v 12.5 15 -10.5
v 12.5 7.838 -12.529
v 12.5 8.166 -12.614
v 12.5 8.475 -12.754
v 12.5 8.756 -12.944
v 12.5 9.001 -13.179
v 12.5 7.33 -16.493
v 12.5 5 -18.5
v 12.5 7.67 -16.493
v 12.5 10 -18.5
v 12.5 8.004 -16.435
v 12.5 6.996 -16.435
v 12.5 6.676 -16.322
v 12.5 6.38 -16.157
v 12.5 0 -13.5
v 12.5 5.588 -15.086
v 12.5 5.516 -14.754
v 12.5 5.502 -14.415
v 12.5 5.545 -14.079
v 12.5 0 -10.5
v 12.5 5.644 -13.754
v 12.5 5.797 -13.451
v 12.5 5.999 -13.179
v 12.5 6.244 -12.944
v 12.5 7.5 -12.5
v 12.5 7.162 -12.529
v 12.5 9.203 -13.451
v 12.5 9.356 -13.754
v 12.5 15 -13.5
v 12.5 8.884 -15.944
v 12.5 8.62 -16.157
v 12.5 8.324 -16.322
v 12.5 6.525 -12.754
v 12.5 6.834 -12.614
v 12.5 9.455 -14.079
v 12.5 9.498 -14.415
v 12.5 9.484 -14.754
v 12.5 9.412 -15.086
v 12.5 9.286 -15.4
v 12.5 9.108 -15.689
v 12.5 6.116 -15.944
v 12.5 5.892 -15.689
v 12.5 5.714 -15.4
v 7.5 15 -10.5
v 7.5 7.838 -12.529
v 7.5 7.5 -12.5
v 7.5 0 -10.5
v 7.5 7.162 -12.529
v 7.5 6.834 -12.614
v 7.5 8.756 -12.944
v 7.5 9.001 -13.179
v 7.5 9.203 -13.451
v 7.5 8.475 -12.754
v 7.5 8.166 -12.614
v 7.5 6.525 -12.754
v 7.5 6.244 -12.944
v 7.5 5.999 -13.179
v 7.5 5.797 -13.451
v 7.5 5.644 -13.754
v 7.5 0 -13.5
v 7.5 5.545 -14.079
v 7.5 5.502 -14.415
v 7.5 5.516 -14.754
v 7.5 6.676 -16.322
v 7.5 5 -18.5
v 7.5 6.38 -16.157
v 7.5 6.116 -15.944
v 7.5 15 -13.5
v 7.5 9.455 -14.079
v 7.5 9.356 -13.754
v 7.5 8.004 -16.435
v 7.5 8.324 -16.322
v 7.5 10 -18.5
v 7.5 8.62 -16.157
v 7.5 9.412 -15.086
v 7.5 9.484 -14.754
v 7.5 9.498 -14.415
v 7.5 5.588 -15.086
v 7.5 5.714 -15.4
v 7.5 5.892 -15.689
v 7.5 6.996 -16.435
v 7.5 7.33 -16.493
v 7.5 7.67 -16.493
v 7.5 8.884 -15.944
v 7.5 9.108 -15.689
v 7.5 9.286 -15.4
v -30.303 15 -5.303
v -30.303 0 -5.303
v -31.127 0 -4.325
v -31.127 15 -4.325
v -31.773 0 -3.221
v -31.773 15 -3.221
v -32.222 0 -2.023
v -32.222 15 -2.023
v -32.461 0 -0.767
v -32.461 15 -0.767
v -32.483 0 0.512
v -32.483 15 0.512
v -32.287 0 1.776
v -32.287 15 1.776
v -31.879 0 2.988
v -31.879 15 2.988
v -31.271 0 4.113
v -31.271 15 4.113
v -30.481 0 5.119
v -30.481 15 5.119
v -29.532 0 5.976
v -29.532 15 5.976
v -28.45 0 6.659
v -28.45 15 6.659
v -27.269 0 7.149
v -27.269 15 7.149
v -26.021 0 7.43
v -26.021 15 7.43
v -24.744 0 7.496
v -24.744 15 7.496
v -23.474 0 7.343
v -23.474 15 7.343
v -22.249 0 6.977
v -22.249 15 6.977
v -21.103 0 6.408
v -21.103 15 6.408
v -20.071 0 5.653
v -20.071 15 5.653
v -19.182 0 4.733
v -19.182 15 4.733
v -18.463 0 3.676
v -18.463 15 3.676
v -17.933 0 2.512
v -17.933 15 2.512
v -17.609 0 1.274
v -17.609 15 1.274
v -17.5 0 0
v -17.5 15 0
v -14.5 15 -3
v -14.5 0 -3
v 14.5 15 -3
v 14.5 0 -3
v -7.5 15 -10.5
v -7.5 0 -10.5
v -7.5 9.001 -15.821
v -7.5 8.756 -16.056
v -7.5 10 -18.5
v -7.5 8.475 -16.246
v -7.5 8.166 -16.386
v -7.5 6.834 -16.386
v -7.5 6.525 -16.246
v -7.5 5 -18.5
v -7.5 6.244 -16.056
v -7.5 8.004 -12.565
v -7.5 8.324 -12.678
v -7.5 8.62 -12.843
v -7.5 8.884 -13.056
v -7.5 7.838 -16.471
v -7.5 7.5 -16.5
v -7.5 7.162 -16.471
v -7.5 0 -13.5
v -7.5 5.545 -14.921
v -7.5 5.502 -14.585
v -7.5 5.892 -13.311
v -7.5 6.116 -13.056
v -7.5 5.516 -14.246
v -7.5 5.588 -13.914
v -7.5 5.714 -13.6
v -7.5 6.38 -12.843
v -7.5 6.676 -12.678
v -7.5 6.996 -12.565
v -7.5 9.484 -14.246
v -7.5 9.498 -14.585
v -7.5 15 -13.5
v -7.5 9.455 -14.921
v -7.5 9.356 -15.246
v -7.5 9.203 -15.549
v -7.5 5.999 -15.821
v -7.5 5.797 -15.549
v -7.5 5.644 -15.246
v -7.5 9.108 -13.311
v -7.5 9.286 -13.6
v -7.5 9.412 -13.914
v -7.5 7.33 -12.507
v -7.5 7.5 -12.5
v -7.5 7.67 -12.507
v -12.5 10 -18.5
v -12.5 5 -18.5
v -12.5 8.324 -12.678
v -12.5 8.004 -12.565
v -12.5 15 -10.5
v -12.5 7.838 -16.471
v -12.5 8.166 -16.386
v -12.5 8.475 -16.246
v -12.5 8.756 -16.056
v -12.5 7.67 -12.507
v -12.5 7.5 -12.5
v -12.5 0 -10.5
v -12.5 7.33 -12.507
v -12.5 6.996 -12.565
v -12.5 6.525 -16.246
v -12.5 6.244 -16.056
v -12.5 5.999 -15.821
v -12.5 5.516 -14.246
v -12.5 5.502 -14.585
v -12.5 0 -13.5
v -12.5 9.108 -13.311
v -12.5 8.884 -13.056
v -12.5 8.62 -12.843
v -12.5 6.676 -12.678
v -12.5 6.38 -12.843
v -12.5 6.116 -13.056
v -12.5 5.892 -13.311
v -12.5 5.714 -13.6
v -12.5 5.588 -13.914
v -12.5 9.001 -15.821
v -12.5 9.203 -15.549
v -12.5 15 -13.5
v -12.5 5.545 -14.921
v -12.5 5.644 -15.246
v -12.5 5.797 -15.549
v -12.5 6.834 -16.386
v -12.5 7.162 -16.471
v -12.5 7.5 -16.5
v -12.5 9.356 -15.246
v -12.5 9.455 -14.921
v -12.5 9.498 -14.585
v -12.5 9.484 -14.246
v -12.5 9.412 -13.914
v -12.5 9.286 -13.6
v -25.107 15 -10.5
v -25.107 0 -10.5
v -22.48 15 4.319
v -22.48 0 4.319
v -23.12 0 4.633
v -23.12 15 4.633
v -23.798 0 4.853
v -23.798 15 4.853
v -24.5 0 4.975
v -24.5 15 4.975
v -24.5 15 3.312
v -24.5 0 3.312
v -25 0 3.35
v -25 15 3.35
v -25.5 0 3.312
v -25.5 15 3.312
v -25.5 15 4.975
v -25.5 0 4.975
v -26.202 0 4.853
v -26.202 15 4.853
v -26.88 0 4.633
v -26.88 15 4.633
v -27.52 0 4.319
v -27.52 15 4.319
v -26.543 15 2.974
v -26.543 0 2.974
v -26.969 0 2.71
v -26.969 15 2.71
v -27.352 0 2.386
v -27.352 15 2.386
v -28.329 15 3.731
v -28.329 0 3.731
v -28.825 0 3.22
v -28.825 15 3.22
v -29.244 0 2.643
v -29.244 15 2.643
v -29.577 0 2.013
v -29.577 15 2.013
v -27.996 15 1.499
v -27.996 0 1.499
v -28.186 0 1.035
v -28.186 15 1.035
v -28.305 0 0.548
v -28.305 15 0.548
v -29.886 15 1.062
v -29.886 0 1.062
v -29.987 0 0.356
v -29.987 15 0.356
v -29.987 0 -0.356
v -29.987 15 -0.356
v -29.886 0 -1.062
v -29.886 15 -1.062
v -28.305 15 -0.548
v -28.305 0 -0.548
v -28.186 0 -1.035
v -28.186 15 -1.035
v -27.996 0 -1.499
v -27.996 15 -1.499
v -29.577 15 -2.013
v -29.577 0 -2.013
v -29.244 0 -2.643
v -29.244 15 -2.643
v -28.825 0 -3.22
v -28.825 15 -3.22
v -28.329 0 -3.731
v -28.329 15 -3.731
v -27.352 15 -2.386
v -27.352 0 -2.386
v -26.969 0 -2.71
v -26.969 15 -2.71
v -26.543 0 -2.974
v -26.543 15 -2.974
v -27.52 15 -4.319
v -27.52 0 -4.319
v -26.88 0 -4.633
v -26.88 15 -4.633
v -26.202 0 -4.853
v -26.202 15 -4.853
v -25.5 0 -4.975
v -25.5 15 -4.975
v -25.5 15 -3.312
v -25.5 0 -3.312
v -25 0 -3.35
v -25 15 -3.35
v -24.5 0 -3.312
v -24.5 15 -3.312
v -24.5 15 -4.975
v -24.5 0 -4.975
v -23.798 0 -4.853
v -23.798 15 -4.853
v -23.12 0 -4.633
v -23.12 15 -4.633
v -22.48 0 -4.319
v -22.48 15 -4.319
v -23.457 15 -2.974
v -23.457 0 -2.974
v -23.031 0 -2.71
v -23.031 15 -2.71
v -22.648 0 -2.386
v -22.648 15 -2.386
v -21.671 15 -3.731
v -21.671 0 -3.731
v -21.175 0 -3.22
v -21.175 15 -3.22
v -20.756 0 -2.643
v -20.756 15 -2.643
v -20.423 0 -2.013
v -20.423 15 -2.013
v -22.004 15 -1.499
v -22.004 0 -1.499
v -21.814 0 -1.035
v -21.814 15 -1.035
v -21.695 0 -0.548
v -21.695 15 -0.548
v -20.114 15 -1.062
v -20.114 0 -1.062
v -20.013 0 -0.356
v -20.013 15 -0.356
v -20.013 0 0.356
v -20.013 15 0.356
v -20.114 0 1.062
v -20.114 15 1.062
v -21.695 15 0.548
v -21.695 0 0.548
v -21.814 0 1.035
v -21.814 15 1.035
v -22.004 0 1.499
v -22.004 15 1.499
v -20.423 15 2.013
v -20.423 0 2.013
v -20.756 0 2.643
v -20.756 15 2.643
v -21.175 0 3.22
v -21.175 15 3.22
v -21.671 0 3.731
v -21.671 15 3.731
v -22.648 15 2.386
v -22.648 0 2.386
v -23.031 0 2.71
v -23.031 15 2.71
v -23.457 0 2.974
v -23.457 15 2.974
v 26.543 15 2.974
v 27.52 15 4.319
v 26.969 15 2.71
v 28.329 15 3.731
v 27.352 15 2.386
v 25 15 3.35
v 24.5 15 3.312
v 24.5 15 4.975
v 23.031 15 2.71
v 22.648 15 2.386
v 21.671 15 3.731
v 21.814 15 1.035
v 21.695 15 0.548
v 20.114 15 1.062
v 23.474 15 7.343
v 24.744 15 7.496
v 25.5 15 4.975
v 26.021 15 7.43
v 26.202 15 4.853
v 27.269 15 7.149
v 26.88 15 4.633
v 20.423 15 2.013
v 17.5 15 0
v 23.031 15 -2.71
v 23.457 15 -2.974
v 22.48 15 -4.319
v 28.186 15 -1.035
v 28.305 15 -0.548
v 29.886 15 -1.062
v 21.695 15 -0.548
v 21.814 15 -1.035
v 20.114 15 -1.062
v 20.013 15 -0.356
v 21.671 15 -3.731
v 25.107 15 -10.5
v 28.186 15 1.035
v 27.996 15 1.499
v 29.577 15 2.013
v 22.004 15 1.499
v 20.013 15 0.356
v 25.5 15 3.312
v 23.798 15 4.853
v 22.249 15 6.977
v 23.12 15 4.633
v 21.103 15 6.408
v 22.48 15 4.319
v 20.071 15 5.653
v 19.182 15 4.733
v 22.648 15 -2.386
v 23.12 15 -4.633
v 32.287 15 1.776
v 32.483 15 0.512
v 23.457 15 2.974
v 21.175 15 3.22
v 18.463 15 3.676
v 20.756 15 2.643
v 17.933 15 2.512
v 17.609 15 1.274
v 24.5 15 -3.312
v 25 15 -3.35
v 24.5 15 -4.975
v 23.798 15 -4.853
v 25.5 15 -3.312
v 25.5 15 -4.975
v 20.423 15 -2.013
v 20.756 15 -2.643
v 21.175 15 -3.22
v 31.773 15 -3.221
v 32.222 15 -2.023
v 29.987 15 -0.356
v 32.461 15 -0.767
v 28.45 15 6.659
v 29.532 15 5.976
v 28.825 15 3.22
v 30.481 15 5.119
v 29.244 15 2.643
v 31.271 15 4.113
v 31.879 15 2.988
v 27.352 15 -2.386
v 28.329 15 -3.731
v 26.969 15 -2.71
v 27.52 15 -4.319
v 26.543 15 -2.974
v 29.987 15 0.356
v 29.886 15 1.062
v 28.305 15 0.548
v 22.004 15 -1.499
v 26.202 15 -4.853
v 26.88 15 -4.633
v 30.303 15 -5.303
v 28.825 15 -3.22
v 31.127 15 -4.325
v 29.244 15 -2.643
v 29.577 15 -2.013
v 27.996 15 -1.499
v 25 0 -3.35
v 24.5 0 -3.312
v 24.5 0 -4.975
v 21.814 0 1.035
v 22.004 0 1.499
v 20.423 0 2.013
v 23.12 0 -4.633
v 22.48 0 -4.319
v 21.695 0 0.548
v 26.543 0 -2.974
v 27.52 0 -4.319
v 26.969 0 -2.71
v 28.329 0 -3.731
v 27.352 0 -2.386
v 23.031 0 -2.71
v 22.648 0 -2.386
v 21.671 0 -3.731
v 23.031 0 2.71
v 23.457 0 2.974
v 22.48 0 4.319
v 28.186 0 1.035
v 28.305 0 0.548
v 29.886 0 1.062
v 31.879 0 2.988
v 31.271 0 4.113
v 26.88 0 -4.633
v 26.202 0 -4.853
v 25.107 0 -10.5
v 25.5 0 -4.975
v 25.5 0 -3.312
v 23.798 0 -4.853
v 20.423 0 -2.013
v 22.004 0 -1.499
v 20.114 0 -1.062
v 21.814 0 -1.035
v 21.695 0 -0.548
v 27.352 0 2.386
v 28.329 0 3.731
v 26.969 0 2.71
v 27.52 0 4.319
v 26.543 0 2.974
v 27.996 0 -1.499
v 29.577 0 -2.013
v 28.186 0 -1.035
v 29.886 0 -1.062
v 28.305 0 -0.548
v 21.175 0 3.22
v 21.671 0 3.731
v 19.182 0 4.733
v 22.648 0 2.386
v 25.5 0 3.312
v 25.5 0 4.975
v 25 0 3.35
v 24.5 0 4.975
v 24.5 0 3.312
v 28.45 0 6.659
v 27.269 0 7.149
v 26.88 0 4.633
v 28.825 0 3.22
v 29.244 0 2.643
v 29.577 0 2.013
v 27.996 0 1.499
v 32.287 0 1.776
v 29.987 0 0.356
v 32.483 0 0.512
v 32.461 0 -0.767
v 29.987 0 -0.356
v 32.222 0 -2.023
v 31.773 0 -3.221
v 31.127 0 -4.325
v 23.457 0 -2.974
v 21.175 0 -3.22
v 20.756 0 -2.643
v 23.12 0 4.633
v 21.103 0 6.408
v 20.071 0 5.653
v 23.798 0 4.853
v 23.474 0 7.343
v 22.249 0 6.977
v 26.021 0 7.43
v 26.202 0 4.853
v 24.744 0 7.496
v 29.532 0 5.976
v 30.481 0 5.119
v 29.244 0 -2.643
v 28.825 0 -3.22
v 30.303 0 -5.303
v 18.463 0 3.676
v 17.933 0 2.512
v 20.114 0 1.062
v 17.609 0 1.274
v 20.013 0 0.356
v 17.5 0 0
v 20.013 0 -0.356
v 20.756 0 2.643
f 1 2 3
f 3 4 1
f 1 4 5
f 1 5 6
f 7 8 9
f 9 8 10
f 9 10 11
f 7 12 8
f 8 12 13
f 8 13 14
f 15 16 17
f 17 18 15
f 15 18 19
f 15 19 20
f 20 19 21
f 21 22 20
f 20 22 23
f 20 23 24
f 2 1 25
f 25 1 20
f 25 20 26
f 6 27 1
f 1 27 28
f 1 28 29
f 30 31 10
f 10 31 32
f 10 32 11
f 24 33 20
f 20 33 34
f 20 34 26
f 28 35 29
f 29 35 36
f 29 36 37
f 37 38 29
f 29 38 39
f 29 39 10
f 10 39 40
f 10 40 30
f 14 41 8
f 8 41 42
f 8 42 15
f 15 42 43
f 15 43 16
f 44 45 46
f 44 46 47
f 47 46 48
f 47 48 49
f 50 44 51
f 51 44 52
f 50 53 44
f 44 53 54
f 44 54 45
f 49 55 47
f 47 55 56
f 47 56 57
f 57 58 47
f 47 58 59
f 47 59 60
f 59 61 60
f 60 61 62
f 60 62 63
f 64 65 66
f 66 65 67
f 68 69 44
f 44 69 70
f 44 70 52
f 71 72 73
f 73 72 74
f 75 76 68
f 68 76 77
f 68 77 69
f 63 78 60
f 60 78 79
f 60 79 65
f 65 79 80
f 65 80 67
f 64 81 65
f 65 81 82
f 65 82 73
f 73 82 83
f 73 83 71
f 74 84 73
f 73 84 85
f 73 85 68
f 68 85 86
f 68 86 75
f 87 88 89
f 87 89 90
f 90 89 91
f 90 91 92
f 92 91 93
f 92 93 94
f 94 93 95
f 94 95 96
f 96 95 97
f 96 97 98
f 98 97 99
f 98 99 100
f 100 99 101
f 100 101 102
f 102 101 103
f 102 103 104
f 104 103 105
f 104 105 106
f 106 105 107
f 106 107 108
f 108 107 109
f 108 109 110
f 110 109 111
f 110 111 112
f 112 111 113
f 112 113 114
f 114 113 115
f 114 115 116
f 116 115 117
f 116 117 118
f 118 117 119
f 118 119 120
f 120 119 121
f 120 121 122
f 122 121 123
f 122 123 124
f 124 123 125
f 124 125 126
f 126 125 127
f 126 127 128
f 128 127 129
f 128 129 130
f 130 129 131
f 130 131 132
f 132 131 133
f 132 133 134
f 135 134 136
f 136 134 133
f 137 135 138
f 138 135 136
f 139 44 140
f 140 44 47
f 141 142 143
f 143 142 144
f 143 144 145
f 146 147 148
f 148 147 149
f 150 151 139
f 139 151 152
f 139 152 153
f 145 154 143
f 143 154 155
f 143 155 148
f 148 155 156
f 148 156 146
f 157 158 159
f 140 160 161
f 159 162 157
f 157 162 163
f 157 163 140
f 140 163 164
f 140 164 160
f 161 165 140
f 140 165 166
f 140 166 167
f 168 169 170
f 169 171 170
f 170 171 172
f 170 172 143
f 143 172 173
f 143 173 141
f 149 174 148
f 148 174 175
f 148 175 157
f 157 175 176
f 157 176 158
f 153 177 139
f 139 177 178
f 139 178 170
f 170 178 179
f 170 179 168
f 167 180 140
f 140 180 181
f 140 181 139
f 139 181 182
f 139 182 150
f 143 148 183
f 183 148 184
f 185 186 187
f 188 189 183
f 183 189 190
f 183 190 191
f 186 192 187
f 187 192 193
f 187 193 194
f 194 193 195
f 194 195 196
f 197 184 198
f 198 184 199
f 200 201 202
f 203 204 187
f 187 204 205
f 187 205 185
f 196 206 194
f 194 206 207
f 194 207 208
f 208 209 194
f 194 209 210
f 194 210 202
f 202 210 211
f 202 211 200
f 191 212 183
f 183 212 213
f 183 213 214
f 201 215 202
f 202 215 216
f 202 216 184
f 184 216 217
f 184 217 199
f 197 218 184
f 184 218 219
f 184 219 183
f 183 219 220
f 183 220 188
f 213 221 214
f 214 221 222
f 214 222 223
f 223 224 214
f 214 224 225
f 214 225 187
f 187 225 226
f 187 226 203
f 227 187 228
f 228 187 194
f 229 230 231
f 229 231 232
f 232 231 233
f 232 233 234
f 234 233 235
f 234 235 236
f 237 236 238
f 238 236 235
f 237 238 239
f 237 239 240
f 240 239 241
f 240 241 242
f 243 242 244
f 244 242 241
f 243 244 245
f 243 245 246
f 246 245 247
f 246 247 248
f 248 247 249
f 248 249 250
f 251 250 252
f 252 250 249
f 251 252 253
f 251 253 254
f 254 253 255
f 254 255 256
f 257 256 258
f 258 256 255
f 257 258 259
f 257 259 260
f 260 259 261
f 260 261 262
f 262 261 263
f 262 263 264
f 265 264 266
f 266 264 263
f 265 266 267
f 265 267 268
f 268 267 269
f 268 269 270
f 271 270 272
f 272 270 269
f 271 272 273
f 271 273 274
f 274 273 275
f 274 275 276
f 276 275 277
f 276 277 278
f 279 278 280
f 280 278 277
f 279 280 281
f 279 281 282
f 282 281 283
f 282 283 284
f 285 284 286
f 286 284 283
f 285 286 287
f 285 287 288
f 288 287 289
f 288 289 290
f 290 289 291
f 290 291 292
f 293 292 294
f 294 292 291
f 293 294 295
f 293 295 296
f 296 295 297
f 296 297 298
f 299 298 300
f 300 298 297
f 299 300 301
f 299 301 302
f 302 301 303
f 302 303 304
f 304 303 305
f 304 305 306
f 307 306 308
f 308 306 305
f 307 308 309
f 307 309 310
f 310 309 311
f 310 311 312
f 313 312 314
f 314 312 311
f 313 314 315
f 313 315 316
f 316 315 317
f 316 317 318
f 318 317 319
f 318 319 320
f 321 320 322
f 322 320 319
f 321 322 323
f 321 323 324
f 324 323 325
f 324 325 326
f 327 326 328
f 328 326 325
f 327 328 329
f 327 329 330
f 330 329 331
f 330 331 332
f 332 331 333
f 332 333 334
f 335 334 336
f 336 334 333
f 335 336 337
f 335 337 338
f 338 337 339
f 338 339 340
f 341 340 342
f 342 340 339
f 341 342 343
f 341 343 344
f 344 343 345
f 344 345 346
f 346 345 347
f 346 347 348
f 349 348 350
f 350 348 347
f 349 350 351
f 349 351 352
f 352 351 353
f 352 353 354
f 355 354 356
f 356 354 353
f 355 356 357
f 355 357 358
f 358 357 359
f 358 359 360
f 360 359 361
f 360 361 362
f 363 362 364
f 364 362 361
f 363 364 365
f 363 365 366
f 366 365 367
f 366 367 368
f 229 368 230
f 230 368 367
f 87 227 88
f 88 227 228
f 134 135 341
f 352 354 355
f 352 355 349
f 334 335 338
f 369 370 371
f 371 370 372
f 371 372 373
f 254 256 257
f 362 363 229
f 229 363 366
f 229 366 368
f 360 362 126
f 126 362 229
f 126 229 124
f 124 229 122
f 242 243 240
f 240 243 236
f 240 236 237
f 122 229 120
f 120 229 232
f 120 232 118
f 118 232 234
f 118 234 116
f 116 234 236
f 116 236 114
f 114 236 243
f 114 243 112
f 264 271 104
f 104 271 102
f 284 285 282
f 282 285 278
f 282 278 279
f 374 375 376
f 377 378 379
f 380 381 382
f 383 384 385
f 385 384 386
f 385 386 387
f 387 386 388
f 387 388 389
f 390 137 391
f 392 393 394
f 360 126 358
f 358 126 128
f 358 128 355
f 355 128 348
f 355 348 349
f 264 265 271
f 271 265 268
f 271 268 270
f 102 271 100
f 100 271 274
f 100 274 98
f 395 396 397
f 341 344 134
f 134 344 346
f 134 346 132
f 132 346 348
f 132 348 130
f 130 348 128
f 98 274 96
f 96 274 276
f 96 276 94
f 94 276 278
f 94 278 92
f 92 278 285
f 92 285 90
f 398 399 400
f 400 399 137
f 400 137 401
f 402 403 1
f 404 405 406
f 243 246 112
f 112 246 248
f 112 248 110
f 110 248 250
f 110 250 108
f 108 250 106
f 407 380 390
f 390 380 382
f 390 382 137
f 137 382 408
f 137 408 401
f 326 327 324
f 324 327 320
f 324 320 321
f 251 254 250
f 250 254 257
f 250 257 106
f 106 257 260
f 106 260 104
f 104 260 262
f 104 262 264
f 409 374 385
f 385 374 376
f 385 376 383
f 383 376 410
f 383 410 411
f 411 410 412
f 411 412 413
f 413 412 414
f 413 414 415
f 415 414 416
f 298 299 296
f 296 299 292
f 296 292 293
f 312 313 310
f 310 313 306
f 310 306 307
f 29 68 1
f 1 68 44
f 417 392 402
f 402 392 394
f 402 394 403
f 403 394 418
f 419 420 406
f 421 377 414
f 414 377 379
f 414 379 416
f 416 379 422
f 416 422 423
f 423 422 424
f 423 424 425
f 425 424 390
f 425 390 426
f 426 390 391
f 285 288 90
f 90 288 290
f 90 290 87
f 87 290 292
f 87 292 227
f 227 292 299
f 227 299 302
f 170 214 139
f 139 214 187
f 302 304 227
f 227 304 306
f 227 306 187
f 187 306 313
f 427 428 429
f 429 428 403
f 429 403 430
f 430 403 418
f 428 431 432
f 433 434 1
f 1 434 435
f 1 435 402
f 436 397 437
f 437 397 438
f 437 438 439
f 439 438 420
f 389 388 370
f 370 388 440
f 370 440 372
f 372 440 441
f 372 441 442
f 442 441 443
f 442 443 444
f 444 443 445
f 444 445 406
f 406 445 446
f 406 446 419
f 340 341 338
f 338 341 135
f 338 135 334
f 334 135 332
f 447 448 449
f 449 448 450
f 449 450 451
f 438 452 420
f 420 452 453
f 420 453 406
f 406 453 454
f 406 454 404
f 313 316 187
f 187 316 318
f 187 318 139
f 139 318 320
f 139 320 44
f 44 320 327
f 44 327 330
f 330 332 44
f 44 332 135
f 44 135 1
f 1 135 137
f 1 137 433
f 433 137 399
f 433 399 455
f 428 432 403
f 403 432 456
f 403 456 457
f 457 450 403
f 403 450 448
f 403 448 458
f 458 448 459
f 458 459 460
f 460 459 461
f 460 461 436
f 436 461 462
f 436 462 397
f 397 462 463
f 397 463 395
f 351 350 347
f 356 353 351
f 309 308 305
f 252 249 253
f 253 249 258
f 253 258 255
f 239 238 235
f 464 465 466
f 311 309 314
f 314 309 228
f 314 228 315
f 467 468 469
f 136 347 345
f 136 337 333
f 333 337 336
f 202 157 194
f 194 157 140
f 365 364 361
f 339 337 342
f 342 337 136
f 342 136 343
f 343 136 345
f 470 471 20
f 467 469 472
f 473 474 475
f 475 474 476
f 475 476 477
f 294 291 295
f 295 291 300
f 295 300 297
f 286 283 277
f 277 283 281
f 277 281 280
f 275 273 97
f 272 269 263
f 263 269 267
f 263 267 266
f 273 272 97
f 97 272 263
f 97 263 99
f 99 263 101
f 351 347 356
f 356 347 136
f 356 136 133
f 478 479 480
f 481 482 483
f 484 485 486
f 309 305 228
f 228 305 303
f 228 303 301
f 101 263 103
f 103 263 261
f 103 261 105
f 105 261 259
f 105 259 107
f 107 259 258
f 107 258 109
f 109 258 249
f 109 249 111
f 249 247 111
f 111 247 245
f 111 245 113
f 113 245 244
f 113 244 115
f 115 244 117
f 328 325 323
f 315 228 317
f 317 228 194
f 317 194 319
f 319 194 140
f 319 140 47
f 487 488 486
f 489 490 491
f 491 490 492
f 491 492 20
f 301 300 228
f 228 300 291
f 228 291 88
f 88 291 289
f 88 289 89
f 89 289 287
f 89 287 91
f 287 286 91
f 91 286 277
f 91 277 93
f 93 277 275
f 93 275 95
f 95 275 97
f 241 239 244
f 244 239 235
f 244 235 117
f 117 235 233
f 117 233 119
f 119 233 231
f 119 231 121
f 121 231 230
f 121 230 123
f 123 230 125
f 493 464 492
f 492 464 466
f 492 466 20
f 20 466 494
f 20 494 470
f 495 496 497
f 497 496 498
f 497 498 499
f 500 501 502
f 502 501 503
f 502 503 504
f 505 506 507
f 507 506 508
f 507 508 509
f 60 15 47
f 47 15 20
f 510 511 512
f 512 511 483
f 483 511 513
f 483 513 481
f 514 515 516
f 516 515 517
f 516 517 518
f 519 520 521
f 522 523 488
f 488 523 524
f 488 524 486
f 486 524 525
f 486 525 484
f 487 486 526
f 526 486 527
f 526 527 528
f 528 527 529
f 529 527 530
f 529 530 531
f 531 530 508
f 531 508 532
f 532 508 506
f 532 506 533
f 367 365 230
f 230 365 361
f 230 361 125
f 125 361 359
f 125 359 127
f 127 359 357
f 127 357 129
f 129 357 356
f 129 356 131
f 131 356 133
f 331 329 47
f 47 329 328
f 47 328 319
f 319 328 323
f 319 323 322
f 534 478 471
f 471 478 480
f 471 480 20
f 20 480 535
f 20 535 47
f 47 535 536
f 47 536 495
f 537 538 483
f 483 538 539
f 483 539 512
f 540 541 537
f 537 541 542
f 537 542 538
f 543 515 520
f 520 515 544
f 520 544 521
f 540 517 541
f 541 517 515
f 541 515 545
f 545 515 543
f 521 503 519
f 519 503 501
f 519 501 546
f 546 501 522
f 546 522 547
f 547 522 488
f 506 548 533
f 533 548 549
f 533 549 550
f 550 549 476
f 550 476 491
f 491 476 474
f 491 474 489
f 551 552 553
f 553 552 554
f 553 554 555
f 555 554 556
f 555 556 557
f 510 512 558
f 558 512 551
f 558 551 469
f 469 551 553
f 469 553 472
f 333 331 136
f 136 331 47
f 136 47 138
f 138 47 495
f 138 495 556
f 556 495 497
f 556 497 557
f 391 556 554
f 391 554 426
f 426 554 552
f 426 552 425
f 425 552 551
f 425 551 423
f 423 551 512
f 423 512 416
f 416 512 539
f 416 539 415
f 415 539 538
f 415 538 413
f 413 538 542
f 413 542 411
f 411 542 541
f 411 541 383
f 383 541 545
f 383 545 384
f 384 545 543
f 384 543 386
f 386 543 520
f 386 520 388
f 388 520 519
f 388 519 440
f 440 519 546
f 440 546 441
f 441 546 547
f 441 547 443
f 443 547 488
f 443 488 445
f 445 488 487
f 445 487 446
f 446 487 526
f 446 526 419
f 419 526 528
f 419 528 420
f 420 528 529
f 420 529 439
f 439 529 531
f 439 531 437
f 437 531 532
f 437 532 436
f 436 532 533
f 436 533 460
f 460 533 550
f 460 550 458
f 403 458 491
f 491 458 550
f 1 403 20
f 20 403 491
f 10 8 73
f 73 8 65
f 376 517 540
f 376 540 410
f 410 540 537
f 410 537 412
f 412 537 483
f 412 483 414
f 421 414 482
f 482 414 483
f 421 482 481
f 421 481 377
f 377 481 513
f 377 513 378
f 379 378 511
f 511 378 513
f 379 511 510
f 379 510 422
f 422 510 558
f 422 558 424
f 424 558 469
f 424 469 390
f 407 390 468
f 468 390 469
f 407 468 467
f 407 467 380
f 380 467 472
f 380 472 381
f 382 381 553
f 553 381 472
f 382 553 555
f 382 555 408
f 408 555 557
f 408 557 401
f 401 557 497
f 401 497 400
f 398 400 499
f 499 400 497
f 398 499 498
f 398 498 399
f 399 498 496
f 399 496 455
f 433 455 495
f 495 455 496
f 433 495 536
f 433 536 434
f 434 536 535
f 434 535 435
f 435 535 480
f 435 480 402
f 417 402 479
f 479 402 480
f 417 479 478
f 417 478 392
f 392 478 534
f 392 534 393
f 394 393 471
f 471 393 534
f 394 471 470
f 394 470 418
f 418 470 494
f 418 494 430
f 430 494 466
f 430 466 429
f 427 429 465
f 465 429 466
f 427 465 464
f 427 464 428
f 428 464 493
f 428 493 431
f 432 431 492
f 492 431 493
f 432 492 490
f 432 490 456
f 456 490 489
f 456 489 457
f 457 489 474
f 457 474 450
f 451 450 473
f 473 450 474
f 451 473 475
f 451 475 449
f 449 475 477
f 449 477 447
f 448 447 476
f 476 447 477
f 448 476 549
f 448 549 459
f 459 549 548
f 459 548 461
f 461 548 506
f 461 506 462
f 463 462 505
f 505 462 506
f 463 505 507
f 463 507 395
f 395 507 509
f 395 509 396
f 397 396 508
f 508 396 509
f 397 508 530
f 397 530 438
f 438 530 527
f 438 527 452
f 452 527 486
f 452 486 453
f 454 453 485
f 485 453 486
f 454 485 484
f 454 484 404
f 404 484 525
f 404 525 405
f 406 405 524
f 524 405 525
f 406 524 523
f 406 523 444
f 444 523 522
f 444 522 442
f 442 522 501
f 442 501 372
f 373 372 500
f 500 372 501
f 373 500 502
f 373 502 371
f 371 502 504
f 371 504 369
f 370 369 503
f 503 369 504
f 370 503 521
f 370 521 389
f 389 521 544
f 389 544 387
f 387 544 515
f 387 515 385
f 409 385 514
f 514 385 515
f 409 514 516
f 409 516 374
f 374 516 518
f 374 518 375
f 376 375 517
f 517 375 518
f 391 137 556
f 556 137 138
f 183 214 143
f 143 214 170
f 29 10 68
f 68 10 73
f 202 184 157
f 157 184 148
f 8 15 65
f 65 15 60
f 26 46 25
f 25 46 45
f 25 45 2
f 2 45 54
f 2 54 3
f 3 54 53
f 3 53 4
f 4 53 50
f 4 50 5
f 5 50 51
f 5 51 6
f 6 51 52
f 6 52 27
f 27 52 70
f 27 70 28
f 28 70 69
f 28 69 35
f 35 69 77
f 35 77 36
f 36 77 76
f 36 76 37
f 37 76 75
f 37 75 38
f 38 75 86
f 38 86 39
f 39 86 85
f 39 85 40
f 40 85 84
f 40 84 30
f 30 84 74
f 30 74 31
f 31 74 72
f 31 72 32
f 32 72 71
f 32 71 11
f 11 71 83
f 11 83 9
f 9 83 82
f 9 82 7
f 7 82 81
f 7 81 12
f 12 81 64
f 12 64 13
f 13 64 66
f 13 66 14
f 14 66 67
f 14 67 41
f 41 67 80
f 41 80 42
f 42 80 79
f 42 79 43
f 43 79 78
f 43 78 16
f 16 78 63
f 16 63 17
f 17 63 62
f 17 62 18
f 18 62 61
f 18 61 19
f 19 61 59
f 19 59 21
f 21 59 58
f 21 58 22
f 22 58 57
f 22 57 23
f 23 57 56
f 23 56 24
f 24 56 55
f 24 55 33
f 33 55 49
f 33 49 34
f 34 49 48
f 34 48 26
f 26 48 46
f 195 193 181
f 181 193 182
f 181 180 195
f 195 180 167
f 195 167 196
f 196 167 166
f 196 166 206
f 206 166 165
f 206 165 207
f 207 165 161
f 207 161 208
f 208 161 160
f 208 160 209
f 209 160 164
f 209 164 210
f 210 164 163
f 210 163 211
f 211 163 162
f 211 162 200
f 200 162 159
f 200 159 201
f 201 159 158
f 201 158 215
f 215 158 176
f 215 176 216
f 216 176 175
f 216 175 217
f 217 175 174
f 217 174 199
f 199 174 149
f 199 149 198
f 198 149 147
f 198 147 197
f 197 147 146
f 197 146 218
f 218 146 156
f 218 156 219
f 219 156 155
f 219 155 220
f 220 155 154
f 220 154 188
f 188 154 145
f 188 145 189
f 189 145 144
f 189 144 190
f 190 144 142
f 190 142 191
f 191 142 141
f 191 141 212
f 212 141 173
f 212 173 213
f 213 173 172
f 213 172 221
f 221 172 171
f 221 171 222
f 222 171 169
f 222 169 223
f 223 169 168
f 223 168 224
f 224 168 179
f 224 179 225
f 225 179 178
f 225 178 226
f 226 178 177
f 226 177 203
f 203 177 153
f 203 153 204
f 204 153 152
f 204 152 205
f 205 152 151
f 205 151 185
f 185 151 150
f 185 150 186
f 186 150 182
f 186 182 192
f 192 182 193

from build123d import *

# Parameters (mm, degrees)
SKETCH1_R                      = 7.5
SKETCH1_R_2                    = 5
SKETCH1_W                      = 5
SKETCH1_H                      = 8
BOSS_EXTRUDE1_DEPTH            = 15
CHAMFER1_SIZE                  = 5
CUT_EXTRUDE1_REACH             = 42.293
SKETCH3_R                      = 2
CUT_EXTRUDE1_DIRECTION_2_REACH = 42.293


with BuildPart() as part:
    # Sketch1 → Boss-Extrude1 (new body)
    # profile 1 of 13: a face of its own
    with BuildSketch(Plane(origin=(0, 0, 0), x_dir=(1, 0, 0), z_dir=(0, 1, 0))):
        with Locations((-25, 0)):
            Circle(SKETCH1_R)
        with Locations((-25, 0)):
            Circle(SKETCH1_R_2, mode=Mode.SUBTRACT)
    # profile 2 of 13: a face of its own
    with BuildSketch(Plane(origin=(0, 0, 0), x_dir=(1, 0, 0), z_dir=(0, 1, 0))):
        with BuildLine():
            Line((-27.995843782, 1.499139764), (-29.576937931, 2.012868394))
            ThreePointArc((-29.576937931, 2.012868394), (-29.755282581, 1.545084972), (-29.885954926, 1.061811878))
            Line((-29.885954926, 1.061811878), (-28.304860777, 0.548083248))
            ThreePointArc((-28.304860777, 0.548083248), (-28.18603933, 1.035206931), (-27.995843782, 1.499139764))
        make_face()
    # profile 3 of 13: a face of its own
    with BuildSketch(Plane(origin=(0, 0, 0), x_dir=(1, 0, 0), z_dir=(0, 1, 0))):
        with BuildLine():
            Line((-28.304860777, -0.548083248), (-29.885954926, -1.061811878))
            ThreePointArc((-29.885954926, -1.061811878), (-29.755282581, -1.545084972), (-29.576937931, -2.012868394))
            Line((-29.576937931, -2.012868394), (-27.995843782, -1.499139764))
            ThreePointArc((-27.995843782, -1.499139764), (-28.18603933, -1.035206931), (-28.304860777, -0.548083248))
        make_face()
    # profile 4 of 13: a face of its own
    with BuildSketch(Plane(origin=(0, 0, 0), x_dir=(1, 0, 0), z_dir=(0, 1, 0))):
        with BuildLine():
            Line((-27.351533282, -2.385957087), (-28.328703206, -3.730916103))
            ThreePointArc((-28.328703206, -3.730916103), (-27.938926261, -4.045084972), (-27.519686212, -4.318701355))
            Line((-27.519686212, -4.318701355), (-26.542516288, -2.973742339))
            ThreePointArc((-26.542516288, -2.973742339), (-26.969080595, -2.710206931), (-27.351533282, -2.385957087))
        make_face()
    # profile 5 of 13: a face of its own
    with BuildSketch(Plane(origin=(0, 0, 0), x_dir=(1, 0, 0), z_dir=(0, 1, 0))):
        with BuildLine():
            Line((-25.5, -3.312476415), (-25.5, -4.974937186))
            ThreePointArc((-25.5, -4.974937186), (-25, -5), (-24.5, -4.974937186))
            Line((-24.5, -4.974937186), (-24.5, -3.312476415))
            ThreePointArc((-24.5, -3.312476415), (-25, -3.35), (-25.5, -3.312476415))
        make_face()
    # profile 6 of 13: a face of its own
    with BuildSketch(Plane(origin=(0, 0, 0), x_dir=(1, 0, 0), z_dir=(0, 1, 0))):
        with BuildLine():
            ThreePointArc((-22.480313788, -4.318701355), (-22.061073739, -4.045084972), (-21.671296794, -3.730916103))
            Line((-21.671296794, -3.730916103), (-22.648466718, -2.385957087))
            ThreePointArc((-22.648466718, -2.385957087), (-23.030919405, -2.710206931), (-23.457483712, -2.973742339))
            Line((-23.457483712, -2.973742339), (-22.480313788, -4.318701355))
        make_face()
    # profile 7 of 13: a face of its own
    with BuildSketch(Plane(origin=(0, 0, 0), x_dir=(1, 0, 0), z_dir=(0, 1, 0))):
        with BuildLine():
            ThreePointArc((-20.423062069, -2.012868394), (-20.244717419, -1.545084972), (-20.114045074, -1.061811878))
            Line((-20.114045074, -1.061811878), (-21.695139223, -0.548083248))
            ThreePointArc((-21.695139223, -0.548083248), (-21.81396067, -1.035206931), (-22.004156218, -1.499139764))
            Line((-22.004156218, -1.499139764), (-20.423062069, -2.012868394))
        make_face()
    # profile 8 of 13: a face of its own
    with BuildSketch(Plane(origin=(0, 0, 0), x_dir=(1, 0, 0), z_dir=(0, 1, 0))):
        with BuildLine():
            ThreePointArc((-20.114045074, 1.061811878), (-20.244717419, 1.545084972), (-20.423062069, 2.012868394))
            Line((-20.423062069, 2.012868394), (-22.004156218, 1.499139764))
            ThreePointArc((-22.004156218, 1.499139764), (-21.81396067, 1.035206931), (-21.695139223, 0.548083248))
            Line((-21.695139223, 0.548083248), (-20.114045074, 1.061811878))
        make_face()
    # profile 9 of 13: a face of its own
    with BuildSketch(Plane(origin=(0, 0, 0), x_dir=(1, 0, 0), z_dir=(0, 1, 0))):
        with BuildLine():
            ThreePointArc((-21.671296794, 3.730916103), (-22.061073739, 4.045084972), (-22.480313788, 4.318701355))
            Line((-22.480313788, 4.318701355), (-23.457483712, 2.973742339))
            ThreePointArc((-23.457483712, 2.973742339), (-23.030919405, 2.710206931), (-22.648466718, 2.385957087))
            Line((-22.648466718, 2.385957087), (-21.671296794, 3.730916103))
        make_face()
    # profile 10 of 13: a face of its own
    with BuildSketch(Plane(origin=(0, 0, 0), x_dir=(1, 0, 0), z_dir=(0, 1, 0))):
        with BuildLine():
            ThreePointArc((-24.5, 4.974937186), (-25, 5), (-25.5, 4.974937186))
            Line((-25.5, 4.974937186), (-25.5, 3.312476415))
            ThreePointArc((-25.5, 3.312476415), (-25, 3.35), (-24.5, 3.312476415))
            Line((-24.5, 3.312476415), (-24.5, 4.974937186))
        make_face()
    # profile 11 of 13: a face of its own
    with BuildSketch(Plane(origin=(0, 0, 0), x_dir=(1, 0, 0), z_dir=(0, 1, 0))):
        with BuildLine():
            Line((-26.542516288, 2.973742339), (-27.519686212, 4.318701355))
            ThreePointArc((-27.519686212, 4.318701355), (-27.938926261, 4.045084972), (-28.328703206, 3.730916103))
            Line((-28.328703206, 3.730916103), (-27.351533282, 2.385957087))
            ThreePointArc((-27.351533282, 2.385957087), (-26.969080595, 2.710206931), (-26.542516288, 2.973742339))
        make_face()
    # profile 12 of 13: a face of its own
    with BuildSketch(Plane(origin=(0, 0, 0), x_dir=(1, 0, 0), z_dir=(0, 1, 0))):
        with BuildLine():
            Line((-25.106601718, 10.5), (-30.303300859, 5.303300859))
            ThreePointArc((-30.303300859, 5.303300859), (-22.129874257, 6.929096494), (-17.5, 0))
            Line((-17.5, 0), (-14.5, 3))
            Line((-14.5, 3), (0, 3))
            Line((0, 3), (0, 10.5))
            Line((0, 10.5), (-7.5, 10.5))
            Line((-7.5, 10.5), (-12.5, 10.5))
            Line((-12.5, 10.5), (-25.106601718, 10.5))
        make_face()
    # profile 13 of 13: a face of its own
    with BuildSketch(Plane(origin=(0, 0, 0), x_dir=(1, 0, 0), z_dir=(0, 1, 0))):
        with Locations((-10, 14.5)):
            Rectangle(SKETCH1_W, SKETCH1_H)
    boss_extrude1 = extrude(amount=BOSS_EXTRUDE1_DEPTH)

    # Mirror1: Boss-Extrude1 across plane
    add(boss_extrude1.mirror(Plane(origin=(0, 0, 0), x_dir=(0, 0, 1), z_dir=(1, 0, 0))))

    # Chamfer1
    chamfer1_edges = [part.edges().sort_by_distance(p)[0] for p in [
        (10, 15, -18.5),
        (10, 0, -18.5),
        (-10, 15, -18.5),
        (-10, 0, -18.5),
    ]]
    chamfer(chamfer1_edges, length=CHAMFER1_SIZE)

    # Sketch3 → Cut-Extrude1 (cut, up to next)
    with BuildSketch(Plane(origin=(0, 0, 0), x_dir=(0, 0, -1), z_dir=(1, 0, 0)), mode=Mode.PRIVATE) as cut_extrude1_sk1:
        with Locations(Location((14.5, 7.5, 0), (0, 0, 180))):
            Circle(SKETCH3_R)
    cut_extrude1_tool1 = extrude(cut_extrude1_sk1.sketch, amount=-CUT_EXTRUDE1_REACH, mode=Mode.PRIVATE) & part.part
    add(cut_extrude1_tool1.solids().sort_by_distance((0, 7.5, -14.5))[0], mode=Mode.SUBTRACT)

    # Sketch3 → Cut-Extrude1 direction 2 (cut, up to next)
    with BuildSketch(Plane(origin=(0, 0, 0), x_dir=(0, 0, -1), z_dir=(1, 0, 0)), mode=Mode.PRIVATE) as cut_extrude1_direction_2_sk1:
        with Locations(Location((14.5, 7.5, 0), (0, 0, 180))):
            Circle(SKETCH3_R)
    cut_extrude1_direction_2_tool1 = extrude(cut_extrude1_direction_2_sk1.sketch, amount=CUT_EXTRUDE1_DIRECTION_2_REACH, mode=Mode.PRIVATE) & part.part
    add(cut_extrude1_direction_2_tool1.solids().sort_by_distance((0, 7.5, -14.5))[0], mode=Mode.SUBTRACT)


solid = part.part
